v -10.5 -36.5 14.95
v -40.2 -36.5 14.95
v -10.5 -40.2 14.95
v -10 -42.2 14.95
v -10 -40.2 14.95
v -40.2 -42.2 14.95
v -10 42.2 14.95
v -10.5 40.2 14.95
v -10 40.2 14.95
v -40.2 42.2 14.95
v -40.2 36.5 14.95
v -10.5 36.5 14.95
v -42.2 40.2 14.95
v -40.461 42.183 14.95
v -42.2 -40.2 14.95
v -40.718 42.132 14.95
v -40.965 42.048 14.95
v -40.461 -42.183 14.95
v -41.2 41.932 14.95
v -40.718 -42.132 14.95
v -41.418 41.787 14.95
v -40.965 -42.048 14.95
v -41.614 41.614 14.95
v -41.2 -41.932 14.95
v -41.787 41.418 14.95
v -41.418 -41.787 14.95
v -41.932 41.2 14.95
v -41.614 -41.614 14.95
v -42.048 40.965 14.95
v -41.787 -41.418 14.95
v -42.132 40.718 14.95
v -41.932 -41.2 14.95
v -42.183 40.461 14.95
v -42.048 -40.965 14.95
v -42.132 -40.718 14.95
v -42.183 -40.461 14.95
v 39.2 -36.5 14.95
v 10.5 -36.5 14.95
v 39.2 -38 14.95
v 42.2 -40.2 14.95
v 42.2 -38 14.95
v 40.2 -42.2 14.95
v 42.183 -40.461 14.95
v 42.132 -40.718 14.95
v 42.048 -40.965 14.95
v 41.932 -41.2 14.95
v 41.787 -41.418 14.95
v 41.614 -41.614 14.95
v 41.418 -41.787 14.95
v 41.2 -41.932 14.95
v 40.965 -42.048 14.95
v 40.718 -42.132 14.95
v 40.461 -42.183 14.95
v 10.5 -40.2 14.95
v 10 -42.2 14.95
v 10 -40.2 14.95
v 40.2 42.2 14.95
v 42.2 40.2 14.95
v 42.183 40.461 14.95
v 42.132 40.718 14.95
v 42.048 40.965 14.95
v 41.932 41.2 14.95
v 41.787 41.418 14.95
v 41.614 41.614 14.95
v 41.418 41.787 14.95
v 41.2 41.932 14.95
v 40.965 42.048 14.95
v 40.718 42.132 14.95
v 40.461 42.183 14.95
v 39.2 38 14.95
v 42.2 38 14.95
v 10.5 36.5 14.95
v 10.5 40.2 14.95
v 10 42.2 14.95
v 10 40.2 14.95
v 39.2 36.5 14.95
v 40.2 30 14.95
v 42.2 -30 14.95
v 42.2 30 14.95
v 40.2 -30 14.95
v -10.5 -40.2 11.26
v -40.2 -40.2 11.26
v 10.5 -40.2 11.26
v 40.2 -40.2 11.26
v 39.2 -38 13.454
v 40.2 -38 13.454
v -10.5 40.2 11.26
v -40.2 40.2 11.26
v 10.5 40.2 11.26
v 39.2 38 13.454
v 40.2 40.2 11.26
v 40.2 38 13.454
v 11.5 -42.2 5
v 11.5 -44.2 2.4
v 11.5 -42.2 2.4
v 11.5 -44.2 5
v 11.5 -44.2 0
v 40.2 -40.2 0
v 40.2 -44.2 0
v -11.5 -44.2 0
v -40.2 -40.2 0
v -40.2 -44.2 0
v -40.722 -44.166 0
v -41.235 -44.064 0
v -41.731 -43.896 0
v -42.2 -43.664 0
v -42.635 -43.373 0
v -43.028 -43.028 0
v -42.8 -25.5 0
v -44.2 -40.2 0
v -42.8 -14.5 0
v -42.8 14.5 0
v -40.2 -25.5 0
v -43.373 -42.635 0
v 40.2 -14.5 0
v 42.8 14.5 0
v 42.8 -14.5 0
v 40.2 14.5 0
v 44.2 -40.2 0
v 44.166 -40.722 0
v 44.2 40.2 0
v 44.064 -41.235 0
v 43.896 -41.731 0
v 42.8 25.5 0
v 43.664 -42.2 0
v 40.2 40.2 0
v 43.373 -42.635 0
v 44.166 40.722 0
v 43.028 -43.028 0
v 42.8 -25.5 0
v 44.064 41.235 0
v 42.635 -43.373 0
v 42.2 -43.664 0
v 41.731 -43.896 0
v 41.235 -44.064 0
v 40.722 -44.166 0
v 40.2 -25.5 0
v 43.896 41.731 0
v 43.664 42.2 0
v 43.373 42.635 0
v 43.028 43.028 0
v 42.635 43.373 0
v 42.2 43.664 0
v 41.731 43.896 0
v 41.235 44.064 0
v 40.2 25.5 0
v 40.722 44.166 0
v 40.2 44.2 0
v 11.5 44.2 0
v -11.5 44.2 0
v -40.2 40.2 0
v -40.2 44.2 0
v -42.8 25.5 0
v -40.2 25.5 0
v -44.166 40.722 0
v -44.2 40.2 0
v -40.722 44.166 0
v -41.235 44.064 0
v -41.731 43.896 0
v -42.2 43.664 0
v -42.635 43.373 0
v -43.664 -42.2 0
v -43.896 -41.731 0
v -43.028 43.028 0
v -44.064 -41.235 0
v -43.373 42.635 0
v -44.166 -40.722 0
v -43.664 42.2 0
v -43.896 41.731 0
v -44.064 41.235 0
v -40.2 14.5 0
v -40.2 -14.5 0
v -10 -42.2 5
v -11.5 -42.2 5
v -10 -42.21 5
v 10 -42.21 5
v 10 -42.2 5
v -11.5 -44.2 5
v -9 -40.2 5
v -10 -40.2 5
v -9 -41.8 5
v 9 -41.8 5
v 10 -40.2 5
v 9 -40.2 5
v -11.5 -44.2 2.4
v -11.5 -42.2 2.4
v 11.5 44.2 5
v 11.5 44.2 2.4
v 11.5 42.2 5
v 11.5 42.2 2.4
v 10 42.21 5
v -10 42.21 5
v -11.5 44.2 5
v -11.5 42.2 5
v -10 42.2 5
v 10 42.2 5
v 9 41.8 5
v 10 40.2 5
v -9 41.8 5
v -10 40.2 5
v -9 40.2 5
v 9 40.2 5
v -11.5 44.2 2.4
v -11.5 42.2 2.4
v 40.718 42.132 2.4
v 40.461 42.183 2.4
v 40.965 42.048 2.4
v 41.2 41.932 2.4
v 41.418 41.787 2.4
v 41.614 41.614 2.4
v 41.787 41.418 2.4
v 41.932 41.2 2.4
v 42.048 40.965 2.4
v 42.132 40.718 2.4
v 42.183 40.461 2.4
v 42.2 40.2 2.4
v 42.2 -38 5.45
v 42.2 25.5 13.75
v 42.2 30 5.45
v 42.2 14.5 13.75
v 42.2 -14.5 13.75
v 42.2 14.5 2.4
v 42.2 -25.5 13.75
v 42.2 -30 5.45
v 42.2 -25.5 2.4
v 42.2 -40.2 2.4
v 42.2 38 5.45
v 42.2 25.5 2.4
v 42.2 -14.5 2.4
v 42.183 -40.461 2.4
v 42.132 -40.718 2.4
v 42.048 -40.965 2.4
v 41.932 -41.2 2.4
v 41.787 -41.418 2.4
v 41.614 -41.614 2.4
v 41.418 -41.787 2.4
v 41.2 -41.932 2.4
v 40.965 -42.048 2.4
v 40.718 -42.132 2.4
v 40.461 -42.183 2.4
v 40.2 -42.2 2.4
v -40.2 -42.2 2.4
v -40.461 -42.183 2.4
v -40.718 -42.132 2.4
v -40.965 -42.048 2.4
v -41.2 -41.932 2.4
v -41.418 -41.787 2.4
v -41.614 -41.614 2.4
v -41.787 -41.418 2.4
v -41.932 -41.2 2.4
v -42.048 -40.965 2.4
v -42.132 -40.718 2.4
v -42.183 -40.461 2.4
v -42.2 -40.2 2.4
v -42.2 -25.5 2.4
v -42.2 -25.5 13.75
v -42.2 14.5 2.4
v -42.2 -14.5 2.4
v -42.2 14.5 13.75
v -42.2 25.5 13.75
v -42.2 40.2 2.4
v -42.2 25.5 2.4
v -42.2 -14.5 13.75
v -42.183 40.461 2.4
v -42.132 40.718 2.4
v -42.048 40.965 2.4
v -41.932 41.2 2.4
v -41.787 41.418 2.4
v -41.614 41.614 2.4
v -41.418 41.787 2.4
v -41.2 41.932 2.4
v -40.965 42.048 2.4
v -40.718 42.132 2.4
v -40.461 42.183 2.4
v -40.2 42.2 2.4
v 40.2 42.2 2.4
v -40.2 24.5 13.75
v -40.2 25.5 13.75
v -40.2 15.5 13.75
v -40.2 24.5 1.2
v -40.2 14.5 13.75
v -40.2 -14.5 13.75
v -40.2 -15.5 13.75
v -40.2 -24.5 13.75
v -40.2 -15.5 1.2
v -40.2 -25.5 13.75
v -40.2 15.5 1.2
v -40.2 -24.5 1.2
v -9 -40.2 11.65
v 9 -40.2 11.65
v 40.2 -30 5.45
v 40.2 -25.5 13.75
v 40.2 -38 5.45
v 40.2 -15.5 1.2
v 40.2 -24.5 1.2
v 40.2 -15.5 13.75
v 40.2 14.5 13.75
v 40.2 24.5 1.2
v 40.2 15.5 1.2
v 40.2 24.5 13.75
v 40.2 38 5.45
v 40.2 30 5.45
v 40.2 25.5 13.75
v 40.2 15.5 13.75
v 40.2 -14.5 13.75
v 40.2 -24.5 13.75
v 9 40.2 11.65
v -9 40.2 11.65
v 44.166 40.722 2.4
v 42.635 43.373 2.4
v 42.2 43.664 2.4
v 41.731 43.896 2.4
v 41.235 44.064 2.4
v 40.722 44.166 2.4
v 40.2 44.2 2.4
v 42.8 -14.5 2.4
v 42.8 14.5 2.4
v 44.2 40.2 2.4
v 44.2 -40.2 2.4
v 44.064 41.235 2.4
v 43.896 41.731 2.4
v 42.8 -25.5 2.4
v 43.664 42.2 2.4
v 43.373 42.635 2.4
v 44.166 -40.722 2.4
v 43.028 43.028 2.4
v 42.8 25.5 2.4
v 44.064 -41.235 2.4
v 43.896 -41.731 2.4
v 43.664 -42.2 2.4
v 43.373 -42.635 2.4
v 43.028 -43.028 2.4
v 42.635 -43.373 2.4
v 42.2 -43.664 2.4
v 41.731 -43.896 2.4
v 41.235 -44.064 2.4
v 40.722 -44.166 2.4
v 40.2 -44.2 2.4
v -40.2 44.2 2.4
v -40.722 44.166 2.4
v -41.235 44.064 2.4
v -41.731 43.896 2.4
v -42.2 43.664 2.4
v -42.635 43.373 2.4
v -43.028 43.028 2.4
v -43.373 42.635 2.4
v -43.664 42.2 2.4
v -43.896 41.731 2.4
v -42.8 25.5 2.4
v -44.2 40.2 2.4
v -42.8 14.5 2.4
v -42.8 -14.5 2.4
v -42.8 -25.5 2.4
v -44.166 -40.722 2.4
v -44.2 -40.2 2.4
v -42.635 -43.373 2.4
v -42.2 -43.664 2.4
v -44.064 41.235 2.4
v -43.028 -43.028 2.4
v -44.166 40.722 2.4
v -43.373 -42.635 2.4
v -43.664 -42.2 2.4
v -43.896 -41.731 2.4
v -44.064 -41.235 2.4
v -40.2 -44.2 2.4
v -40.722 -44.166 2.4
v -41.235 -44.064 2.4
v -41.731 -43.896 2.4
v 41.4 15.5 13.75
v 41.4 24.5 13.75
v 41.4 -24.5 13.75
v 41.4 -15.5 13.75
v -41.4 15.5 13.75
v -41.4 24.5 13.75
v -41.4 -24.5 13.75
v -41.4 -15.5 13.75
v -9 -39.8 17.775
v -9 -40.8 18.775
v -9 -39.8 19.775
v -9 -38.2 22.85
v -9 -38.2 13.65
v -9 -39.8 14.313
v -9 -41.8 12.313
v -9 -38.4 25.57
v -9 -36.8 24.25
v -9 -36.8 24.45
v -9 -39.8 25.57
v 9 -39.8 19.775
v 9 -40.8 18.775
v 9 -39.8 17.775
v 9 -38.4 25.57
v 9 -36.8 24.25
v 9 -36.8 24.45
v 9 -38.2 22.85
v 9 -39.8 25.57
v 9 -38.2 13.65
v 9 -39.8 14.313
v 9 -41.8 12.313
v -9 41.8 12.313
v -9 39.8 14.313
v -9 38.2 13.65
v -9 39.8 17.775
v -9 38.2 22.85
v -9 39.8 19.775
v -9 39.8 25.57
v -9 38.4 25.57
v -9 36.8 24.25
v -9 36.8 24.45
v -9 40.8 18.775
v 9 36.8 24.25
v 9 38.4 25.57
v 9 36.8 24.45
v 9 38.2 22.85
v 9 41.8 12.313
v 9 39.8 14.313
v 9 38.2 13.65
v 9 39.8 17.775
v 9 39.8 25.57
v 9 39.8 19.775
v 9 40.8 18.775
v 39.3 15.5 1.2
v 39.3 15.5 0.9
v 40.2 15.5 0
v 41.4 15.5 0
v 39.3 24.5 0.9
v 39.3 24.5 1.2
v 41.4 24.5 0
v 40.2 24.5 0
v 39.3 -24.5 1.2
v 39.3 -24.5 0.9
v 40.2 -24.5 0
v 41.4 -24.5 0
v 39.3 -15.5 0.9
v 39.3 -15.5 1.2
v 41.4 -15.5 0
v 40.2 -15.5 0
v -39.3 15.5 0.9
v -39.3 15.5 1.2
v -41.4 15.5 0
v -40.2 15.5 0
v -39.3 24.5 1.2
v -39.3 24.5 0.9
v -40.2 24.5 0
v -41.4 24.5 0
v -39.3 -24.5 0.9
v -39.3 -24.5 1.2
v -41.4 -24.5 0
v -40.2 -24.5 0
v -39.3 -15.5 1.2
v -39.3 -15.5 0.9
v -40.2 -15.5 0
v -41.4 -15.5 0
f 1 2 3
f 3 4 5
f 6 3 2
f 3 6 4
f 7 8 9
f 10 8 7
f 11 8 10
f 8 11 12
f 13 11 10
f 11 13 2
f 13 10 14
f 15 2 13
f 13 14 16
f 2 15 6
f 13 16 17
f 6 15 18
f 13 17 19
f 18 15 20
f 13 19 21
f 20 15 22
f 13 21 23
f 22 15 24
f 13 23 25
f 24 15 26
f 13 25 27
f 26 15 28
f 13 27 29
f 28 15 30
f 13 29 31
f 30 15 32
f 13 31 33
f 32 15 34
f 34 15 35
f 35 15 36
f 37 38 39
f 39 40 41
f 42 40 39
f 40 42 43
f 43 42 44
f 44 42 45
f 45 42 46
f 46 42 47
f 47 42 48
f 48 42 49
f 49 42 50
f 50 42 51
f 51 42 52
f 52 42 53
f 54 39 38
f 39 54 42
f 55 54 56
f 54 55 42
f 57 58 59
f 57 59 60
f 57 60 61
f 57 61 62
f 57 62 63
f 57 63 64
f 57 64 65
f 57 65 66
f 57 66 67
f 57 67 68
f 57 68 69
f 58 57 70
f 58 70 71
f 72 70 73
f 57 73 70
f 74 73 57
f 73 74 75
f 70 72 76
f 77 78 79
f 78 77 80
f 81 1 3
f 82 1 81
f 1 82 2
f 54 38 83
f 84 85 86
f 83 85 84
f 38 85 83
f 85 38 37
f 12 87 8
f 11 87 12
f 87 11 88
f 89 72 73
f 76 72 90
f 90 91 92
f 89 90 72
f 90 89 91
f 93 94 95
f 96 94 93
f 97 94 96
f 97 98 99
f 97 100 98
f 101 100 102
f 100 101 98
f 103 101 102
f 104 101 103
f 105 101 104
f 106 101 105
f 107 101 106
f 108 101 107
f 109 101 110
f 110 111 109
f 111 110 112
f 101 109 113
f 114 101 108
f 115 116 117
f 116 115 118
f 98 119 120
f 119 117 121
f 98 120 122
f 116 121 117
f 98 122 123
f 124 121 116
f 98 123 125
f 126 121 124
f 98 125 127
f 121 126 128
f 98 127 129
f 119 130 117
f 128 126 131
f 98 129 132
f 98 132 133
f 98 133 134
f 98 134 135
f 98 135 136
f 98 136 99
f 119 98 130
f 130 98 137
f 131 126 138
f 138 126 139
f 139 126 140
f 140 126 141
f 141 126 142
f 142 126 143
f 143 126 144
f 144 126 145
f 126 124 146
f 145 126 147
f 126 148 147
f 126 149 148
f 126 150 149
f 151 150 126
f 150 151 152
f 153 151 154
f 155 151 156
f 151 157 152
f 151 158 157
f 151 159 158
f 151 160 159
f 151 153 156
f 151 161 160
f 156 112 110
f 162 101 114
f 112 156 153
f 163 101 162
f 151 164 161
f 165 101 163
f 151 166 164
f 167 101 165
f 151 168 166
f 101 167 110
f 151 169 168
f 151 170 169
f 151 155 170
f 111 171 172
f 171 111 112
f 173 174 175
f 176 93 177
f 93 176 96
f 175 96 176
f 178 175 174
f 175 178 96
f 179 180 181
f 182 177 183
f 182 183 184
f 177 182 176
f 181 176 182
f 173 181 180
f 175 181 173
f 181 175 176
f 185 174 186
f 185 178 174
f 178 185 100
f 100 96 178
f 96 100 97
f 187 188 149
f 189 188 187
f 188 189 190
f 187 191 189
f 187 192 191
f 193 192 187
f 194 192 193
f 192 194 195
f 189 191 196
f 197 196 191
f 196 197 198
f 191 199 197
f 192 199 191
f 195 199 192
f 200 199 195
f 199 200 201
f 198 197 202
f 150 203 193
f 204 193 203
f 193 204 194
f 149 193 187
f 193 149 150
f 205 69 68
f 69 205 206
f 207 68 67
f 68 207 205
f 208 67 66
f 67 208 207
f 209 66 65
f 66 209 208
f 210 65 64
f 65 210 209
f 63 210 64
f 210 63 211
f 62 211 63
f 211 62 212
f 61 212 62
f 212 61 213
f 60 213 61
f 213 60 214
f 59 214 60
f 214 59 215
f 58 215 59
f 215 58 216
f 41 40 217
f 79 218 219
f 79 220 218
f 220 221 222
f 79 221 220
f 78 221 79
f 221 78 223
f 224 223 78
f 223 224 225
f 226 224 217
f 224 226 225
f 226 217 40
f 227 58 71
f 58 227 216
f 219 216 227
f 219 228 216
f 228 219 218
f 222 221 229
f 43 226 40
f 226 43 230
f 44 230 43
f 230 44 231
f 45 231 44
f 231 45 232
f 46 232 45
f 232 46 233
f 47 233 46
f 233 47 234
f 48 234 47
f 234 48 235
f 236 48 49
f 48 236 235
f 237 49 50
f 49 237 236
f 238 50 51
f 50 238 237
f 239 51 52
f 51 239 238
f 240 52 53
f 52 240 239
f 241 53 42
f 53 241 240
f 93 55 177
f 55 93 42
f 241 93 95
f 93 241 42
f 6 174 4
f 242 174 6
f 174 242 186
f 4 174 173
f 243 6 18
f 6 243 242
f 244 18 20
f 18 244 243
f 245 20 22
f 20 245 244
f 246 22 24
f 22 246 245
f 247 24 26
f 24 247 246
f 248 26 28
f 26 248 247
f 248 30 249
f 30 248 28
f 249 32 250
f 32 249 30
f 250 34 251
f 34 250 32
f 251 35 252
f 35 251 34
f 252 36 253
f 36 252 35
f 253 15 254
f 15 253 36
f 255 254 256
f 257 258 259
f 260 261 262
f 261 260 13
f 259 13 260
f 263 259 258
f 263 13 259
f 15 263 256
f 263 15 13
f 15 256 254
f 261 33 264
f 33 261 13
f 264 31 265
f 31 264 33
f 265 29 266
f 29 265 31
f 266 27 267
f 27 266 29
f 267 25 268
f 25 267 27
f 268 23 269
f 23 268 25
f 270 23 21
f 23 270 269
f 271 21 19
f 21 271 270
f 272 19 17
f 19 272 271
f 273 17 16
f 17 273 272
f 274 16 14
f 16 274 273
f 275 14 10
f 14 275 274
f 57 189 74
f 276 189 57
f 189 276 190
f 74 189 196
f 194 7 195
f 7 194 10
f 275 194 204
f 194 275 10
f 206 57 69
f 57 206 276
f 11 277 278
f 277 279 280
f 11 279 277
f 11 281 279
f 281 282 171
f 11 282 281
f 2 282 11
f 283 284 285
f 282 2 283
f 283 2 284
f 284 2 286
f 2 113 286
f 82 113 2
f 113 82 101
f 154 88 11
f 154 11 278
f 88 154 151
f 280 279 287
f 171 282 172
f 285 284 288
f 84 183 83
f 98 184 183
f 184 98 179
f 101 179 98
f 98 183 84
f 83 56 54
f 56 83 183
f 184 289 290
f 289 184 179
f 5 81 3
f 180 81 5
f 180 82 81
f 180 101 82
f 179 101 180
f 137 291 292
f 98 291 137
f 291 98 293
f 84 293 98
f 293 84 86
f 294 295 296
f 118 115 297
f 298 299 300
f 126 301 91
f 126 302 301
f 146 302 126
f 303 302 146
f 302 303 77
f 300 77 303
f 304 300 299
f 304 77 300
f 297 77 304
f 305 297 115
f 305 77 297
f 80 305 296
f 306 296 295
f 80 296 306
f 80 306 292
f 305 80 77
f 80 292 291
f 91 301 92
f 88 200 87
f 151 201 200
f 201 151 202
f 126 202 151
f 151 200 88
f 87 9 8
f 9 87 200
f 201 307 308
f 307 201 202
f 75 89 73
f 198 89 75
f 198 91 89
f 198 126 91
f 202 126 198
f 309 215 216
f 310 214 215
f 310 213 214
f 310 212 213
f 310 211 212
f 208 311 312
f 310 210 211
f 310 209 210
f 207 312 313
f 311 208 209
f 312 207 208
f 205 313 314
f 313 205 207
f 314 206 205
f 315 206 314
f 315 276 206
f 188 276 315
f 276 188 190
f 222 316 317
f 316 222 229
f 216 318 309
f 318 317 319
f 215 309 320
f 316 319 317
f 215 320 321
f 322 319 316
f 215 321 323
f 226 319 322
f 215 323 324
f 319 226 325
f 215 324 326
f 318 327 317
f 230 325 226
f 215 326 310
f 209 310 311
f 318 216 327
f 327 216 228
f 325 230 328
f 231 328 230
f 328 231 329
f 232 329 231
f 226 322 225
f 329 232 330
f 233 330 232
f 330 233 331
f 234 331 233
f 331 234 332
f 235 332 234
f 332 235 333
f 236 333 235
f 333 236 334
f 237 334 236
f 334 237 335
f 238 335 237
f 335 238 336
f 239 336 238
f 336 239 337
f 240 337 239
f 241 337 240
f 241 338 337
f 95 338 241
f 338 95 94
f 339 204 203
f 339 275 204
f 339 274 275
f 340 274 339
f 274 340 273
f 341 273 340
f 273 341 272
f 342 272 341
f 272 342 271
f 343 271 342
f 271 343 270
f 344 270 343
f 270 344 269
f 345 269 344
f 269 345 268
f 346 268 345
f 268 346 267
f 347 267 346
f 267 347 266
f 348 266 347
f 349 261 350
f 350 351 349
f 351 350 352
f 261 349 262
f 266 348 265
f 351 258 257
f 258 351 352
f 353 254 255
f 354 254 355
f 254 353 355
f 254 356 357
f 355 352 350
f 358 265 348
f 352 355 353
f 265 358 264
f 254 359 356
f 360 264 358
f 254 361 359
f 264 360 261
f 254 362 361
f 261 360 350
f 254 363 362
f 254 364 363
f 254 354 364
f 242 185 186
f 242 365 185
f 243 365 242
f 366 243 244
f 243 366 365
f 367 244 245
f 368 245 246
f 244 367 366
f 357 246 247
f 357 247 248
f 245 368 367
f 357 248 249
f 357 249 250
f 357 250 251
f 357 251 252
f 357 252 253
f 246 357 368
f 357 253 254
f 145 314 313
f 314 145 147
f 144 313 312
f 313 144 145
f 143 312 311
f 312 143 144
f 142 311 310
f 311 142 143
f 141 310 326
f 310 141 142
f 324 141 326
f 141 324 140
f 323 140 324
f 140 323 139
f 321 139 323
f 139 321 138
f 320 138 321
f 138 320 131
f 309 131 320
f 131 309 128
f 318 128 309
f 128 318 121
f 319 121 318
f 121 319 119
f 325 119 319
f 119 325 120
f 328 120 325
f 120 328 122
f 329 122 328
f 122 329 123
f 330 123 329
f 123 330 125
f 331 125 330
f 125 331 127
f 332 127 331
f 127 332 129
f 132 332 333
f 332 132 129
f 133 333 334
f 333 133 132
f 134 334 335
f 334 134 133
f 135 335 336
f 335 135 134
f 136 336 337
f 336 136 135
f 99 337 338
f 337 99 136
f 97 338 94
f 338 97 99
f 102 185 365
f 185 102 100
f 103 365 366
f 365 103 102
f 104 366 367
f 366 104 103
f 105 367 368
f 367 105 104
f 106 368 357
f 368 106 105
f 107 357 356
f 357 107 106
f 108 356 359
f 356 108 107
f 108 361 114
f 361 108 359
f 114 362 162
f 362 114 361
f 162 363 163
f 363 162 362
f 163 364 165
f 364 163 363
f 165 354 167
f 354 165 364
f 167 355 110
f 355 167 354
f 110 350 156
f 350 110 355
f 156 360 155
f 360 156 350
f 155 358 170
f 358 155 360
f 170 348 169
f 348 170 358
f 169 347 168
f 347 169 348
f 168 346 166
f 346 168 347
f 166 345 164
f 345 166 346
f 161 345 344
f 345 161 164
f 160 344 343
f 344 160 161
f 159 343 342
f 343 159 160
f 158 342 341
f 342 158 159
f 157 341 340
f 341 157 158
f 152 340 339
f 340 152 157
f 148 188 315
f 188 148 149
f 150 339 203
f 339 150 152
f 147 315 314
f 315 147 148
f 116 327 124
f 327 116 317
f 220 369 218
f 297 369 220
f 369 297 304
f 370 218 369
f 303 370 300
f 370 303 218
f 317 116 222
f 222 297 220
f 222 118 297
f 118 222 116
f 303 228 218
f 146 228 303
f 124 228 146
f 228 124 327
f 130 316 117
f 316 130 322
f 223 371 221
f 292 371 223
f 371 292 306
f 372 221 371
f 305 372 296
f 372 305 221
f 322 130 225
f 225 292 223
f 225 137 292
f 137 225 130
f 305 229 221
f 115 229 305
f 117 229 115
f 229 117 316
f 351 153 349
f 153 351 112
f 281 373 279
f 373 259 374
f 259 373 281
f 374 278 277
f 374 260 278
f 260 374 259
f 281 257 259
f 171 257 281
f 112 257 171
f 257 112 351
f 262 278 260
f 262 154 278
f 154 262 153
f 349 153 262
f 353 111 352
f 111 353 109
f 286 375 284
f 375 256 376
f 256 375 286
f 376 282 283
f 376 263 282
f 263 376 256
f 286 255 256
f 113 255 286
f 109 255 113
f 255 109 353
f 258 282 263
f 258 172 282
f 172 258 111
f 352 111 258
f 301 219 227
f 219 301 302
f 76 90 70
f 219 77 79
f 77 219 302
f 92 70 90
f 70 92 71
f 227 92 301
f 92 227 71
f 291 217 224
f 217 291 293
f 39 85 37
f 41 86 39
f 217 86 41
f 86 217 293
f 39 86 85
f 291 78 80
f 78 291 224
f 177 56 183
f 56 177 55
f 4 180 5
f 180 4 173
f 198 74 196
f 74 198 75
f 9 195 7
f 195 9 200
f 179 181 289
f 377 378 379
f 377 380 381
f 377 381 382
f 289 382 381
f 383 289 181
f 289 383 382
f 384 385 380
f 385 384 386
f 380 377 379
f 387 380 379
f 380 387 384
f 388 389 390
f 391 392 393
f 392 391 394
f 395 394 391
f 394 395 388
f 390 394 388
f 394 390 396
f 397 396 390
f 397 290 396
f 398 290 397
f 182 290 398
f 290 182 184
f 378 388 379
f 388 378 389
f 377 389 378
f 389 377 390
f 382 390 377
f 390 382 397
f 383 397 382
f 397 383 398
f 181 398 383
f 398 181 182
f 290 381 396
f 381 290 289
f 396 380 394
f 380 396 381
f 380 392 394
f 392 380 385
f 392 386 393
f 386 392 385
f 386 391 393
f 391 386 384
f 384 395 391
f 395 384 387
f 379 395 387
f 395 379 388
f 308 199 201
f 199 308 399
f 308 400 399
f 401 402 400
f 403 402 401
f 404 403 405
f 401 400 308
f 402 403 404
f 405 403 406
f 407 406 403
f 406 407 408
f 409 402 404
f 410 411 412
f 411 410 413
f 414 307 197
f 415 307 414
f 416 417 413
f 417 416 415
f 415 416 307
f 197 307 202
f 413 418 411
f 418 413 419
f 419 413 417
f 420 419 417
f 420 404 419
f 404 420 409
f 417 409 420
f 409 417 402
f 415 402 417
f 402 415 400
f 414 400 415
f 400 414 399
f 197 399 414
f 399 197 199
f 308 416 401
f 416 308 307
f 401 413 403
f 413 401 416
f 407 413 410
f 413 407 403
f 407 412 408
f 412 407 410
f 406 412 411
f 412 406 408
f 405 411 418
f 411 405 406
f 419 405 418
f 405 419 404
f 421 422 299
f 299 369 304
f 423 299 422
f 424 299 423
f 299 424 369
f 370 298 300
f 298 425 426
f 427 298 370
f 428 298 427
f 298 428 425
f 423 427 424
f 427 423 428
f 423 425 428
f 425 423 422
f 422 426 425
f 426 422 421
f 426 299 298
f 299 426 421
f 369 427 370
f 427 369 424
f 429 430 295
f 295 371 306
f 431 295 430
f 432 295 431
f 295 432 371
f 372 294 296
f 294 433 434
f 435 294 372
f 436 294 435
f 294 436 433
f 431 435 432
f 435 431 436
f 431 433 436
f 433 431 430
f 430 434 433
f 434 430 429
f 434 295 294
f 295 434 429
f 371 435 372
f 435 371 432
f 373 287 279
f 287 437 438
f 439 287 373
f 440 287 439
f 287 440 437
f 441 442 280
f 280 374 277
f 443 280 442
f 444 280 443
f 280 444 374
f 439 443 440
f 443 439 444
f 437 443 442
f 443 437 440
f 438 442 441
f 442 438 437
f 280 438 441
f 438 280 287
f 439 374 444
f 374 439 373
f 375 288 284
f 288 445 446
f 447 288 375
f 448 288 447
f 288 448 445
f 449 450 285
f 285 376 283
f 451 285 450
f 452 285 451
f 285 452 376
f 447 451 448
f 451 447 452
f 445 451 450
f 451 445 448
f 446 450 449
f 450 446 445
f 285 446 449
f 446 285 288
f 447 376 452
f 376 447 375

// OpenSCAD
// =====================================================================
//  Suporte de ENCAIXE para fan 80x80x10 mm
//  Dissipador da HBA LSI / Broadcom SAS 9300-16i  (sem parafusos)
// =====================================================================
//  Como funciona
//   - O fan entra por cima e trava em 4 linguetas (snap).
//   - A moldura apoia no topo das aletas.
//   - 2 garras laterais abracam o dissipador e prendem por baixo da base.
//
//  Coordenadas (posicao de uso):
//   X = ao longo das aletas (comprimento da placa)
//   Y = atravessado as aletas (altura da placa)
//   Z = 0 no topo das aletas, positivo para cima
//
//  Unidades: mm.  Abra no OpenSCAD, ajuste as medidas do bloco 1,
//  F6 (render) e exporte o STL.
// =====================================================================

/* [1. Dissipador - MEDIR COM PAQUIMETRO] */
// Largura atravessada as aletas (de uma face lateral lisa a outra)
hs_w = 76.0;
// Altura total: da face de baixo da base ate o topo das aletas
hs_h = 8.5;
// Folga entre a PCB e a face de baixo do dissipador (so conferencia)
pcb_gap = 3.0;
// Comprimento ao longo das aletas (so para a pre-visualizacao)
hs_len = 104;

/* [2. Fan] */
fan       = 80;     // lado do fan
fan_t     = 10.0;   // espessura do fan
fan_clear = 0.2;    // folga lateral por lado
fan_play  = 0.25;   // folga vertical sob as travas

/* [3. Moldura] */
wall_t       = 2.0;  // espessura das paredes
rim_w        = 2.0;  // aba externa de reforco (fica na mesa ao imprimir)
rim_t        = 2.4;
standoff_min = 2.0;  // distancia minima fan -> aletas
rest_overlap = 1.5;  // quanto o trilho apoia sobre a borda do dissipador
corner_r     = 2.0;

/* [4. Garras que prendem no dissipador] */
leg_w        = 18;   // largura de cada garra
leg_t        = 1.6;  // espessura (flexao)
leg_x        = 0;    // desloca as garras ao longo de X
hs_clear     = 0.2;  // folga garra <-> lateral do dissipador
hook_reach   = 1.4;  // quanto o gancho entra por baixo da base
hook_preload = 0.4;  // aperto (pre-carga) depois de encaixado
hook_nose    = 0.2;
lead_ang     = 35;   // angulo da rampa de entrada (graus)
root_h       = 5.0;  // faixa rigida no topo onde a garra nasce
slit         = 1.0;  // rasgo entre garra e parede
grip         = 1.0;  // friso para puxar a garra com a unha (0 = sem)

/* [5. Travas do fan] */
fing_w      = 9;
fing_t      = 1.2;
fing_y      = 20;    // posicao das travas (+/-) em cada parede
fing_reach  = 0.9;   // quanto a trava cobre o fan
fing_root_z = 1.2;

/* [6. Saida do cabo] */
cable_w = 8;
cable_y = 34;        // centro do rasgo (+/-) na parede X+
cable_h = 6;         // altura do rasgo acima da base do fan

/* [7. Saida] */
print_orientation = true;   // true = virado para imprimir (aba na mesa)
show_ghost        = false;  // mostra dissipador/fan/PCB (so preview)

/* [Hidden] */
$fn = 48;
eps = 0.01;

// ---------------- medidas derivadas ----------------
yw_i  = fan/2 + fan_clear;            // face interna da parede
yw_o  = yw_i + wall_t;                // face externa da parede
Y_i   = hs_w/2 + hs_clear;            // face interna da garra junto ao dissipador
s     = max(standoff_min, yw_i - hs_w/2 + rest_overlap);  // altura do trilho = fan acima das aletas
fan_z0 = s - fan_clear;               // base do fan
zc    = fan_z0 + fan_t + fan_play;    // face de travamento (topo do fan)
Z_top = zc + 0.3 + fing_reach;        // topo da peca
jog      = Y_i < yw_i;                // dissipador mais estreito que o fan
wall_cut = Y_i < yw_o + 0.8;          // garra ocupa o plano da parede
y_top = max(Y_i, yw_i);
Z1    = -hs_h + hs_clear + hook_preload;                       // inicio da cunha do gancho
z_tip = Z1 - hook_reach;
zb    = z_tip - hook_nose - (hook_reach + 0.2) * tan(lead_ang); // ponto mais baixo da garra
hook_depth = -hs_h - zb;              // quanto a garra desce abaixo da base do dissipador
lz_a  = leg_x - leg_w/2;
lz_b  = leg_x + leg_w/2;

echo(str("== Tamanho da peca (X x Y x Z): ", 2*(yw_o+rim_w), " x ",
         2*max(yw_o+rim_w, y_top+leg_t+grip), " x ", Z_top - zb, " mm"));
echo(str("== Fan fica ", fan_z0, " mm acima das aletas; topo da peca ", Z_top, " mm acima das aletas"));
echo(str("== A garra desce ", hook_depth, " mm abaixo da base do dissipador -> precisa de folga ate a PCB >= ",
         hook_depth + 0.4, " mm (informado: ", pcb_gap, ")"));
if (hook_depth + 0.3 > pcb_gap) echo("AVISO: gancho alto demais para a folga informada - reduza hook_reach ou aumente lead_ang");
if (zb > -hs_h - 0.5) echo("AVISO: gancho muito raso");

// ---------------- utilitarios ----------------
// perfil (y,z) extrudado ao longo de X
module prism_yz(pts, x0, w) { translate([x0,0,0]) rotate([90,0,90]) linear_extrude(w) polygon(pts); }
// perfil (x,z) extrudado ao longo de Y
module prism_xz(pts, y0, w) { translate([0,y0+w,0]) rotate([90,0,0]) linear_extrude(w) polygon(pts); }
module rsq(half, r) { offset(r) square([2*(half-r), 2*(half-r)], center=true); }

// ---------------- moldura ----------------
module walls() {
  linear_extrude(Z_top) difference() { rsq(yw_o, corner_r); square(2*yw_i, center=true); }
}
module rim() {
  translate([0,0,Z_top-rim_t]) linear_extrude(rim_t)
    difference() { rsq(yw_o+rim_w, corner_r+rim_w); square(2*yw_i, center=true); }
}
// trilhos a 45 graus: apoiam o fan por baixo e assentam na borda do dissipador
module rails() {
  prof = [[yw_i+eps, s], [yw_i-s, 0], [yw_i+eps, 0]];
  segs = wall_cut ? [[-yw_i, lz_a-slit-0.5], [lz_b+slit+0.5, yw_i]] : [[-yw_i, yw_i]];
  for (m=[0,1]) mirror([0,m,0]) for (sg=segs) if (sg[1]-sg[0] > 1) prism_yz(prof, sg[0], sg[1]-sg[0]);
}
// bloco rigido onde nasce cada garra
module leg_roots() {
  y1 = max(yw_o+rim_w, y_top+leg_t);
  for (m=[0,1]) mirror([0,m,0])
    translate([lz_a-slit-1.5, yw_i, Z_top-root_h]) cube([leg_w+2*slit+3, y1-yw_i, root_h]);
}

// ---------------- garras do dissipador ----------------
function leg_profile() =
  let(Yo = Y_i + leg_t, d = yw_i - Y_i, zj = fan_z0 - 0.2, k = 0.4142*leg_t,
      zg = -hs_h*0.45)
  concat(
    [[y_top, Z_top]],
    jog ? [[yw_i, zj], [Y_i, zj-d]] : [],
    [[Y_i, Z1], [Y_i-hook_reach, z_tip], [Y_i-hook_reach, z_tip-hook_nose],
     [Y_i+0.2, zb], [Yo, zb]],
    grip > 0 ? [[Yo, zg-grip], [Yo+grip, zg], [Yo, zg+grip]] : [],
    jog ? [[Yo, zj-d-k], [yw_i+leg_t, zj-k]] : [],
    [[y_top+leg_t, Z_top]]
  );
module legs() { for (m=[0,1]) mirror([0,m,0]) prism_yz(leg_profile(), lz_a, leg_w); }
module leg_wall_cuts() {
  if (wall_cut) for (m=[0,1]) mirror([0,m,0])
    translate([lz_a-slit, yw_i-eps, -1]) cube([leg_w+2*slit, wall_t+2*eps, Z_top-root_h+1]);
}

// ---------------- travas do fan ----------------
module fingers() {
  prof = [[yw_i, fing_root_z-0.5], [yw_i, zc], [yw_i-fing_reach, zc], [yw_i-fing_reach, zc+0.3],
          [yw_i, Z_top], [yw_i+fing_t, Z_top], [yw_i+fing_t, fing_root_z-0.5]];
  for (m=[0,1]) mirror([m,0,0]) for (sy=[-1,1]) prism_xz(prof, sy*fing_y-fing_w/2, fing_w);
}
module finger_cuts() {
  for (m=[0,1]) mirror([m,0,0]) for (sy=[-1,1])
    translate([yw_i-eps, sy*fing_y-fing_w/2-slit, fing_root_z]) cube([wall_t+0.6+eps, fing_w+2*slit, Z_top]);
}
module cable_cuts() {
  for (sy=[-1,1]) translate([yw_i-1, sy*cable_y-cable_w/2, -1]) cube([wall_t+2, cable_w, fan_z0+cable_h+1]);
}

// ---------------- peca ----------------
module part() {
  difference() {
    union() { walls(); rim(); rails(); leg_roots(); }
    finger_cuts(); cable_cuts(); leg_wall_cuts();
  }
  legs();
  fingers();
}

// ---------------- pre-visualizacao (nao exportar) ----------------
module ghost() {
  fin_p = 2.6; nf = floor(hs_w/fin_p);
  color("#333") translate([-hs_len/2, -hs_w/2, -hs_h]) cube([hs_len, hs_w, 2.5]);
  color("#333") for (i=[0:nf]) translate([-hs_len/2, -hs_w/2 + i*(hs_w-1)/nf, -hs_h]) cube([hs_len, 1, hs_h]);
  color("#2a6b3f") translate([-hs_len/2-8, -hs_w/2-3, -hs_h-pcb_gap-1.6]) cube([hs_len+45, hs_w+12, 1.6]);
  color("#c8c8c8", 0.9) translate([0,0,fan_z0]) difference() {
    linear_extrude(fan_t) rsq(fan/2, 4.5);
    translate([0,0,-1]) cylinder(d=76, h=fan_t+2);
  }
  color("#999", 0.9) translate([0,0,fan_z0]) cylinder(d=34, h=fan_t);
}

if (show_ghost) { color("#e8762b") part(); ghost(); }
else if (print_orientation) translate([0,0,Z_top]) rotate([180,0,0]) part();
else part();
